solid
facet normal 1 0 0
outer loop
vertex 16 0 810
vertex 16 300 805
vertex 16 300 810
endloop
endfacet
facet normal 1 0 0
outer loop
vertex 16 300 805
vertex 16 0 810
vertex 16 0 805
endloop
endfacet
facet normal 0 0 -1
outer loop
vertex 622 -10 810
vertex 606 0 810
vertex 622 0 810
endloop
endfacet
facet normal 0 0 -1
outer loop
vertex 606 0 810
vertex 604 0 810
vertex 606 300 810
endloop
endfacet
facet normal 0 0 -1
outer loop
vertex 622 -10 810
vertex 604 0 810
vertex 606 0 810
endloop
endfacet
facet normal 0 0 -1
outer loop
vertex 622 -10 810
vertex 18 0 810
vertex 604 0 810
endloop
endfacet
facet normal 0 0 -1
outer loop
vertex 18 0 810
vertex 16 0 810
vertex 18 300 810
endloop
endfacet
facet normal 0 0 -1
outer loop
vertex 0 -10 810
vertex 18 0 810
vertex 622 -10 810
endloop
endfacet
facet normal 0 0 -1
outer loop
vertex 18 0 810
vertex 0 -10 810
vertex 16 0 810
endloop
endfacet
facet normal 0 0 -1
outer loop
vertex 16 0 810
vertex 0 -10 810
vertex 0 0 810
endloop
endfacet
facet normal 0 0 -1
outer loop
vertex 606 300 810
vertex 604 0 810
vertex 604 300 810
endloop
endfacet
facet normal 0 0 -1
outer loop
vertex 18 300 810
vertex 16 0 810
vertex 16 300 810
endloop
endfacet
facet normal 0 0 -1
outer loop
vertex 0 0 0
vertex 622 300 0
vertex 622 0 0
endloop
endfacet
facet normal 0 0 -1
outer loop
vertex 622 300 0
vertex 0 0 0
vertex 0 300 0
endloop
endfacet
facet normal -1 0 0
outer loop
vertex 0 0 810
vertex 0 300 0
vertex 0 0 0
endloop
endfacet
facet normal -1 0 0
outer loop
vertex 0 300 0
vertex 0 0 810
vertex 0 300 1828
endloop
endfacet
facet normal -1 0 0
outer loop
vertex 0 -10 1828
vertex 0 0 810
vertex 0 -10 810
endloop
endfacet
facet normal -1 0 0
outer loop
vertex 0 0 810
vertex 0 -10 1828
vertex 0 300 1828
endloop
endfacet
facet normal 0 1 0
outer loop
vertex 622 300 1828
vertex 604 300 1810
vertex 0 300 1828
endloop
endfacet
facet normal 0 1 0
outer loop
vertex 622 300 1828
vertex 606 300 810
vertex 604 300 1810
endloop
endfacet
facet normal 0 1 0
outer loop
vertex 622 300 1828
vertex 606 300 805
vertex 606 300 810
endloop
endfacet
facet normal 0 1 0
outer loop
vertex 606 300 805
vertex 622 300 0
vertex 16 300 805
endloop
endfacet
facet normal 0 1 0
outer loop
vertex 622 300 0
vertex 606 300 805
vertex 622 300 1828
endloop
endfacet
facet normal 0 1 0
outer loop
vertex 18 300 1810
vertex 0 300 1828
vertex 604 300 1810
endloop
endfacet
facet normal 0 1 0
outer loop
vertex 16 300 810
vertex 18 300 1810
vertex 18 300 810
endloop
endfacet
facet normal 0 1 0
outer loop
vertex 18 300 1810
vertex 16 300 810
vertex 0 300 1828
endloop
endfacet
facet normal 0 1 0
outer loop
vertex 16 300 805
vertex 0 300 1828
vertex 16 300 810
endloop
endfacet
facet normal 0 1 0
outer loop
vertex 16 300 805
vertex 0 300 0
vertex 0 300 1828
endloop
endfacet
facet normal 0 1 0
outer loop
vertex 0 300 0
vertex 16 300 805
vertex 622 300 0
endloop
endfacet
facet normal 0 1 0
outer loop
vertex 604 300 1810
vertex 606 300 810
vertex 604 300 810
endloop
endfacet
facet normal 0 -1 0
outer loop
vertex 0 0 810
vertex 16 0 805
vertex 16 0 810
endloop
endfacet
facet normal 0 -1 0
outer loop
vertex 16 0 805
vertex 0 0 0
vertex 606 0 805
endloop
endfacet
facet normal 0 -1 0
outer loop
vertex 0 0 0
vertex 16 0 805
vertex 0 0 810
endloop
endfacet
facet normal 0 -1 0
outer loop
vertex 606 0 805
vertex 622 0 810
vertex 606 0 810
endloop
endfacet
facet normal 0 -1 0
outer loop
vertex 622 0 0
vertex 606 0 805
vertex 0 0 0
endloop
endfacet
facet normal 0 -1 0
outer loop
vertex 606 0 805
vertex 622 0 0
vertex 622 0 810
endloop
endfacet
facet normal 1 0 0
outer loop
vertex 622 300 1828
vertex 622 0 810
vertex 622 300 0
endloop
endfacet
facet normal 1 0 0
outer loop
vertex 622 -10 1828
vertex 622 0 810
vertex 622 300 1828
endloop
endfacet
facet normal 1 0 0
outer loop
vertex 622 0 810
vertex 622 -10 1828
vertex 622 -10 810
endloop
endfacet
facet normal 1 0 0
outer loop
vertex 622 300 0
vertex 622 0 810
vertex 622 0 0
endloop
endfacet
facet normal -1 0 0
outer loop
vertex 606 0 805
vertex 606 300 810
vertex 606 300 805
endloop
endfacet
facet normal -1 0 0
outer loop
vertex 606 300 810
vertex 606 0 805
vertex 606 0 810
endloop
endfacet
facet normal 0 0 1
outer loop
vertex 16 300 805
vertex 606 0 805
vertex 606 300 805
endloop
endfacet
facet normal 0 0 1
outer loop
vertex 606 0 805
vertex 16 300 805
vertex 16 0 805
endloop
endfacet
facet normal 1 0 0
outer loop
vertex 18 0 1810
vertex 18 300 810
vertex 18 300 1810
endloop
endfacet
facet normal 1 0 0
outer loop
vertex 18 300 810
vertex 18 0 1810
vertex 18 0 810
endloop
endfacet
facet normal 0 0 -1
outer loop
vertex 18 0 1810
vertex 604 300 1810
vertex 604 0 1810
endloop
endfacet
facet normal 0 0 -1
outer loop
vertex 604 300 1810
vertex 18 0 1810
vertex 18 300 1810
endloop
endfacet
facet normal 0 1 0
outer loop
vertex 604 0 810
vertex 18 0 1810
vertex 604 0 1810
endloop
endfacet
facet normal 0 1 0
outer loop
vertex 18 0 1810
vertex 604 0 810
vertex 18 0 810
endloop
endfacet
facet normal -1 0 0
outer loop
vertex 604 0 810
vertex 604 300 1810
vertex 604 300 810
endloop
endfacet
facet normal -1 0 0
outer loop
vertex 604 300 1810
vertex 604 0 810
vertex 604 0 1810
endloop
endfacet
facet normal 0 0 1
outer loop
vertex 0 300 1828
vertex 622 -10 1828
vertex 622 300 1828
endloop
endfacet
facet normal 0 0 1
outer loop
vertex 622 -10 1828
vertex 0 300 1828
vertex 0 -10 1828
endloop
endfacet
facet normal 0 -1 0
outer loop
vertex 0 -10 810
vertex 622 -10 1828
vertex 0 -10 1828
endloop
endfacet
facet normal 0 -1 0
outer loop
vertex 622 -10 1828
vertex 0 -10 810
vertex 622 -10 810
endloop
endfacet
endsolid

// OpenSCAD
// COLORS
WOOD = "#BA8C63";
WOOD_DARK = "#8B4513";
WOOD_OAK = "#A0522D";
WOOD_LIGHT_OAK = "#D2B48C";
WOOD_DARK_BOARD = "#8B4513";

// CABINET BBOX
DRAWERS_BASE_X = 622;
DRAWERS_BASE_Y= 300;
DRAWERS_BASE_Z = 810;

DRAWERS_SIDEPLANK_X = 16;
DRAWERS_SIDEPLANK_Y = 300;
DRAWERS_SIDEPLANK_Z = 810;

DRAWERS_TOPPLANK_X = DRAWERS_BASE_X - 2 * DRAWERS_SIDEPLANK_X;
DRAWERS_TOPPLANK_Y = 300;
DRAWERS_TOPPLANK_Z = 16;
DRAWERS_TOPPLANK_Z_OFFSET = DRAWERS_BASE_Z - DRAWERS_TOPPLANK_Z - 5;

module DrawersBase(){
    color(WOOD, 1){
        // SIDE PLANKS
        cube([DRAWERS_SIDEPLANK_X, DRAWERS_SIDEPLANK_Y, DRAWERS_SIDEPLANK_Z]);
        translate([DRAWERS_BASE_X - DRAWERS_SIDEPLANK_X, 0, 0]){
            cube([DRAWERS_SIDEPLANK_X, DRAWERS_SIDEPLANK_Y, DRAWERS_SIDEPLANK_Z]);
        }
        // TOP PLANK
        translate([DRAWERS_SIDEPLANK_X, 0, DRAWERS_TOPPLANK_Z_OFFSET]){
            cube([DRAWERS_TOPPLANK_X, DRAWERS_TOPPLANK_Y, DRAWERS_TOPPLANK_Z]);
        }
    }

    // FRONT DRAWERS
    color(WOOD,1){
        translate([DRAWERS_SIDEPLANK_X, 0, 0]){
            cube([DRAWERS_BASE_X - DRAWERS_SIDEPLANK_X * 2, DRAWERS_BASE_Y, DRAWERS_TOPPLANK_Z_OFFSET]);
        }
    }
    
}

PLANK_X = 1000 - (1000 - DRAWERS_BASE_X);
PLANK_Y = 300;
PLANK_Z = 18;

SIDEPLANK_Y = 300;
SIDEPLANK_X = 18;
SIDEPLANK_Z = 1000;

BACKBOARD_X = 1000 - (1000 - DRAWERS_BASE_X);
BACKBOARD_Y = 10;
BACKBOARD_Z = 1000 + PLANK_Z;

module MyCabinet(){
    color(WOOD_LIGHT_OAK,1){
        // SIDE PLANKS
        cube([SIDEPLANK_X, SIDEPLANK_Y, SIDEPLANK_Z]);
        translate([DRAWERS_BASE_X - SIDEPLANK_X, 0, 0]){
            cube([SIDEPLANK_X, SIDEPLANK_Y, SIDEPLANK_Z]);
        }
    }
    color(WOOD_LIGHT_OAK,1){
        // TOP PLANK
        translate([0, 0, SIDEPLANK_Z]){
            cube([PLANK_X, PLANK_Y, PLANK_Z]);
        }
    }
    // BACKBOARD
    color(WOOD_DARK, 1){    
        translate([0, -BACKBOARD_Y, 0]){
            cube([BACKBOARD_X, BACKBOARD_Y, BACKBOARD_Z]);
        }
    }
}

DrawersBase();
translate([0, 0, DRAWERS_BASE_Z]){
    MyCabinet();
}
